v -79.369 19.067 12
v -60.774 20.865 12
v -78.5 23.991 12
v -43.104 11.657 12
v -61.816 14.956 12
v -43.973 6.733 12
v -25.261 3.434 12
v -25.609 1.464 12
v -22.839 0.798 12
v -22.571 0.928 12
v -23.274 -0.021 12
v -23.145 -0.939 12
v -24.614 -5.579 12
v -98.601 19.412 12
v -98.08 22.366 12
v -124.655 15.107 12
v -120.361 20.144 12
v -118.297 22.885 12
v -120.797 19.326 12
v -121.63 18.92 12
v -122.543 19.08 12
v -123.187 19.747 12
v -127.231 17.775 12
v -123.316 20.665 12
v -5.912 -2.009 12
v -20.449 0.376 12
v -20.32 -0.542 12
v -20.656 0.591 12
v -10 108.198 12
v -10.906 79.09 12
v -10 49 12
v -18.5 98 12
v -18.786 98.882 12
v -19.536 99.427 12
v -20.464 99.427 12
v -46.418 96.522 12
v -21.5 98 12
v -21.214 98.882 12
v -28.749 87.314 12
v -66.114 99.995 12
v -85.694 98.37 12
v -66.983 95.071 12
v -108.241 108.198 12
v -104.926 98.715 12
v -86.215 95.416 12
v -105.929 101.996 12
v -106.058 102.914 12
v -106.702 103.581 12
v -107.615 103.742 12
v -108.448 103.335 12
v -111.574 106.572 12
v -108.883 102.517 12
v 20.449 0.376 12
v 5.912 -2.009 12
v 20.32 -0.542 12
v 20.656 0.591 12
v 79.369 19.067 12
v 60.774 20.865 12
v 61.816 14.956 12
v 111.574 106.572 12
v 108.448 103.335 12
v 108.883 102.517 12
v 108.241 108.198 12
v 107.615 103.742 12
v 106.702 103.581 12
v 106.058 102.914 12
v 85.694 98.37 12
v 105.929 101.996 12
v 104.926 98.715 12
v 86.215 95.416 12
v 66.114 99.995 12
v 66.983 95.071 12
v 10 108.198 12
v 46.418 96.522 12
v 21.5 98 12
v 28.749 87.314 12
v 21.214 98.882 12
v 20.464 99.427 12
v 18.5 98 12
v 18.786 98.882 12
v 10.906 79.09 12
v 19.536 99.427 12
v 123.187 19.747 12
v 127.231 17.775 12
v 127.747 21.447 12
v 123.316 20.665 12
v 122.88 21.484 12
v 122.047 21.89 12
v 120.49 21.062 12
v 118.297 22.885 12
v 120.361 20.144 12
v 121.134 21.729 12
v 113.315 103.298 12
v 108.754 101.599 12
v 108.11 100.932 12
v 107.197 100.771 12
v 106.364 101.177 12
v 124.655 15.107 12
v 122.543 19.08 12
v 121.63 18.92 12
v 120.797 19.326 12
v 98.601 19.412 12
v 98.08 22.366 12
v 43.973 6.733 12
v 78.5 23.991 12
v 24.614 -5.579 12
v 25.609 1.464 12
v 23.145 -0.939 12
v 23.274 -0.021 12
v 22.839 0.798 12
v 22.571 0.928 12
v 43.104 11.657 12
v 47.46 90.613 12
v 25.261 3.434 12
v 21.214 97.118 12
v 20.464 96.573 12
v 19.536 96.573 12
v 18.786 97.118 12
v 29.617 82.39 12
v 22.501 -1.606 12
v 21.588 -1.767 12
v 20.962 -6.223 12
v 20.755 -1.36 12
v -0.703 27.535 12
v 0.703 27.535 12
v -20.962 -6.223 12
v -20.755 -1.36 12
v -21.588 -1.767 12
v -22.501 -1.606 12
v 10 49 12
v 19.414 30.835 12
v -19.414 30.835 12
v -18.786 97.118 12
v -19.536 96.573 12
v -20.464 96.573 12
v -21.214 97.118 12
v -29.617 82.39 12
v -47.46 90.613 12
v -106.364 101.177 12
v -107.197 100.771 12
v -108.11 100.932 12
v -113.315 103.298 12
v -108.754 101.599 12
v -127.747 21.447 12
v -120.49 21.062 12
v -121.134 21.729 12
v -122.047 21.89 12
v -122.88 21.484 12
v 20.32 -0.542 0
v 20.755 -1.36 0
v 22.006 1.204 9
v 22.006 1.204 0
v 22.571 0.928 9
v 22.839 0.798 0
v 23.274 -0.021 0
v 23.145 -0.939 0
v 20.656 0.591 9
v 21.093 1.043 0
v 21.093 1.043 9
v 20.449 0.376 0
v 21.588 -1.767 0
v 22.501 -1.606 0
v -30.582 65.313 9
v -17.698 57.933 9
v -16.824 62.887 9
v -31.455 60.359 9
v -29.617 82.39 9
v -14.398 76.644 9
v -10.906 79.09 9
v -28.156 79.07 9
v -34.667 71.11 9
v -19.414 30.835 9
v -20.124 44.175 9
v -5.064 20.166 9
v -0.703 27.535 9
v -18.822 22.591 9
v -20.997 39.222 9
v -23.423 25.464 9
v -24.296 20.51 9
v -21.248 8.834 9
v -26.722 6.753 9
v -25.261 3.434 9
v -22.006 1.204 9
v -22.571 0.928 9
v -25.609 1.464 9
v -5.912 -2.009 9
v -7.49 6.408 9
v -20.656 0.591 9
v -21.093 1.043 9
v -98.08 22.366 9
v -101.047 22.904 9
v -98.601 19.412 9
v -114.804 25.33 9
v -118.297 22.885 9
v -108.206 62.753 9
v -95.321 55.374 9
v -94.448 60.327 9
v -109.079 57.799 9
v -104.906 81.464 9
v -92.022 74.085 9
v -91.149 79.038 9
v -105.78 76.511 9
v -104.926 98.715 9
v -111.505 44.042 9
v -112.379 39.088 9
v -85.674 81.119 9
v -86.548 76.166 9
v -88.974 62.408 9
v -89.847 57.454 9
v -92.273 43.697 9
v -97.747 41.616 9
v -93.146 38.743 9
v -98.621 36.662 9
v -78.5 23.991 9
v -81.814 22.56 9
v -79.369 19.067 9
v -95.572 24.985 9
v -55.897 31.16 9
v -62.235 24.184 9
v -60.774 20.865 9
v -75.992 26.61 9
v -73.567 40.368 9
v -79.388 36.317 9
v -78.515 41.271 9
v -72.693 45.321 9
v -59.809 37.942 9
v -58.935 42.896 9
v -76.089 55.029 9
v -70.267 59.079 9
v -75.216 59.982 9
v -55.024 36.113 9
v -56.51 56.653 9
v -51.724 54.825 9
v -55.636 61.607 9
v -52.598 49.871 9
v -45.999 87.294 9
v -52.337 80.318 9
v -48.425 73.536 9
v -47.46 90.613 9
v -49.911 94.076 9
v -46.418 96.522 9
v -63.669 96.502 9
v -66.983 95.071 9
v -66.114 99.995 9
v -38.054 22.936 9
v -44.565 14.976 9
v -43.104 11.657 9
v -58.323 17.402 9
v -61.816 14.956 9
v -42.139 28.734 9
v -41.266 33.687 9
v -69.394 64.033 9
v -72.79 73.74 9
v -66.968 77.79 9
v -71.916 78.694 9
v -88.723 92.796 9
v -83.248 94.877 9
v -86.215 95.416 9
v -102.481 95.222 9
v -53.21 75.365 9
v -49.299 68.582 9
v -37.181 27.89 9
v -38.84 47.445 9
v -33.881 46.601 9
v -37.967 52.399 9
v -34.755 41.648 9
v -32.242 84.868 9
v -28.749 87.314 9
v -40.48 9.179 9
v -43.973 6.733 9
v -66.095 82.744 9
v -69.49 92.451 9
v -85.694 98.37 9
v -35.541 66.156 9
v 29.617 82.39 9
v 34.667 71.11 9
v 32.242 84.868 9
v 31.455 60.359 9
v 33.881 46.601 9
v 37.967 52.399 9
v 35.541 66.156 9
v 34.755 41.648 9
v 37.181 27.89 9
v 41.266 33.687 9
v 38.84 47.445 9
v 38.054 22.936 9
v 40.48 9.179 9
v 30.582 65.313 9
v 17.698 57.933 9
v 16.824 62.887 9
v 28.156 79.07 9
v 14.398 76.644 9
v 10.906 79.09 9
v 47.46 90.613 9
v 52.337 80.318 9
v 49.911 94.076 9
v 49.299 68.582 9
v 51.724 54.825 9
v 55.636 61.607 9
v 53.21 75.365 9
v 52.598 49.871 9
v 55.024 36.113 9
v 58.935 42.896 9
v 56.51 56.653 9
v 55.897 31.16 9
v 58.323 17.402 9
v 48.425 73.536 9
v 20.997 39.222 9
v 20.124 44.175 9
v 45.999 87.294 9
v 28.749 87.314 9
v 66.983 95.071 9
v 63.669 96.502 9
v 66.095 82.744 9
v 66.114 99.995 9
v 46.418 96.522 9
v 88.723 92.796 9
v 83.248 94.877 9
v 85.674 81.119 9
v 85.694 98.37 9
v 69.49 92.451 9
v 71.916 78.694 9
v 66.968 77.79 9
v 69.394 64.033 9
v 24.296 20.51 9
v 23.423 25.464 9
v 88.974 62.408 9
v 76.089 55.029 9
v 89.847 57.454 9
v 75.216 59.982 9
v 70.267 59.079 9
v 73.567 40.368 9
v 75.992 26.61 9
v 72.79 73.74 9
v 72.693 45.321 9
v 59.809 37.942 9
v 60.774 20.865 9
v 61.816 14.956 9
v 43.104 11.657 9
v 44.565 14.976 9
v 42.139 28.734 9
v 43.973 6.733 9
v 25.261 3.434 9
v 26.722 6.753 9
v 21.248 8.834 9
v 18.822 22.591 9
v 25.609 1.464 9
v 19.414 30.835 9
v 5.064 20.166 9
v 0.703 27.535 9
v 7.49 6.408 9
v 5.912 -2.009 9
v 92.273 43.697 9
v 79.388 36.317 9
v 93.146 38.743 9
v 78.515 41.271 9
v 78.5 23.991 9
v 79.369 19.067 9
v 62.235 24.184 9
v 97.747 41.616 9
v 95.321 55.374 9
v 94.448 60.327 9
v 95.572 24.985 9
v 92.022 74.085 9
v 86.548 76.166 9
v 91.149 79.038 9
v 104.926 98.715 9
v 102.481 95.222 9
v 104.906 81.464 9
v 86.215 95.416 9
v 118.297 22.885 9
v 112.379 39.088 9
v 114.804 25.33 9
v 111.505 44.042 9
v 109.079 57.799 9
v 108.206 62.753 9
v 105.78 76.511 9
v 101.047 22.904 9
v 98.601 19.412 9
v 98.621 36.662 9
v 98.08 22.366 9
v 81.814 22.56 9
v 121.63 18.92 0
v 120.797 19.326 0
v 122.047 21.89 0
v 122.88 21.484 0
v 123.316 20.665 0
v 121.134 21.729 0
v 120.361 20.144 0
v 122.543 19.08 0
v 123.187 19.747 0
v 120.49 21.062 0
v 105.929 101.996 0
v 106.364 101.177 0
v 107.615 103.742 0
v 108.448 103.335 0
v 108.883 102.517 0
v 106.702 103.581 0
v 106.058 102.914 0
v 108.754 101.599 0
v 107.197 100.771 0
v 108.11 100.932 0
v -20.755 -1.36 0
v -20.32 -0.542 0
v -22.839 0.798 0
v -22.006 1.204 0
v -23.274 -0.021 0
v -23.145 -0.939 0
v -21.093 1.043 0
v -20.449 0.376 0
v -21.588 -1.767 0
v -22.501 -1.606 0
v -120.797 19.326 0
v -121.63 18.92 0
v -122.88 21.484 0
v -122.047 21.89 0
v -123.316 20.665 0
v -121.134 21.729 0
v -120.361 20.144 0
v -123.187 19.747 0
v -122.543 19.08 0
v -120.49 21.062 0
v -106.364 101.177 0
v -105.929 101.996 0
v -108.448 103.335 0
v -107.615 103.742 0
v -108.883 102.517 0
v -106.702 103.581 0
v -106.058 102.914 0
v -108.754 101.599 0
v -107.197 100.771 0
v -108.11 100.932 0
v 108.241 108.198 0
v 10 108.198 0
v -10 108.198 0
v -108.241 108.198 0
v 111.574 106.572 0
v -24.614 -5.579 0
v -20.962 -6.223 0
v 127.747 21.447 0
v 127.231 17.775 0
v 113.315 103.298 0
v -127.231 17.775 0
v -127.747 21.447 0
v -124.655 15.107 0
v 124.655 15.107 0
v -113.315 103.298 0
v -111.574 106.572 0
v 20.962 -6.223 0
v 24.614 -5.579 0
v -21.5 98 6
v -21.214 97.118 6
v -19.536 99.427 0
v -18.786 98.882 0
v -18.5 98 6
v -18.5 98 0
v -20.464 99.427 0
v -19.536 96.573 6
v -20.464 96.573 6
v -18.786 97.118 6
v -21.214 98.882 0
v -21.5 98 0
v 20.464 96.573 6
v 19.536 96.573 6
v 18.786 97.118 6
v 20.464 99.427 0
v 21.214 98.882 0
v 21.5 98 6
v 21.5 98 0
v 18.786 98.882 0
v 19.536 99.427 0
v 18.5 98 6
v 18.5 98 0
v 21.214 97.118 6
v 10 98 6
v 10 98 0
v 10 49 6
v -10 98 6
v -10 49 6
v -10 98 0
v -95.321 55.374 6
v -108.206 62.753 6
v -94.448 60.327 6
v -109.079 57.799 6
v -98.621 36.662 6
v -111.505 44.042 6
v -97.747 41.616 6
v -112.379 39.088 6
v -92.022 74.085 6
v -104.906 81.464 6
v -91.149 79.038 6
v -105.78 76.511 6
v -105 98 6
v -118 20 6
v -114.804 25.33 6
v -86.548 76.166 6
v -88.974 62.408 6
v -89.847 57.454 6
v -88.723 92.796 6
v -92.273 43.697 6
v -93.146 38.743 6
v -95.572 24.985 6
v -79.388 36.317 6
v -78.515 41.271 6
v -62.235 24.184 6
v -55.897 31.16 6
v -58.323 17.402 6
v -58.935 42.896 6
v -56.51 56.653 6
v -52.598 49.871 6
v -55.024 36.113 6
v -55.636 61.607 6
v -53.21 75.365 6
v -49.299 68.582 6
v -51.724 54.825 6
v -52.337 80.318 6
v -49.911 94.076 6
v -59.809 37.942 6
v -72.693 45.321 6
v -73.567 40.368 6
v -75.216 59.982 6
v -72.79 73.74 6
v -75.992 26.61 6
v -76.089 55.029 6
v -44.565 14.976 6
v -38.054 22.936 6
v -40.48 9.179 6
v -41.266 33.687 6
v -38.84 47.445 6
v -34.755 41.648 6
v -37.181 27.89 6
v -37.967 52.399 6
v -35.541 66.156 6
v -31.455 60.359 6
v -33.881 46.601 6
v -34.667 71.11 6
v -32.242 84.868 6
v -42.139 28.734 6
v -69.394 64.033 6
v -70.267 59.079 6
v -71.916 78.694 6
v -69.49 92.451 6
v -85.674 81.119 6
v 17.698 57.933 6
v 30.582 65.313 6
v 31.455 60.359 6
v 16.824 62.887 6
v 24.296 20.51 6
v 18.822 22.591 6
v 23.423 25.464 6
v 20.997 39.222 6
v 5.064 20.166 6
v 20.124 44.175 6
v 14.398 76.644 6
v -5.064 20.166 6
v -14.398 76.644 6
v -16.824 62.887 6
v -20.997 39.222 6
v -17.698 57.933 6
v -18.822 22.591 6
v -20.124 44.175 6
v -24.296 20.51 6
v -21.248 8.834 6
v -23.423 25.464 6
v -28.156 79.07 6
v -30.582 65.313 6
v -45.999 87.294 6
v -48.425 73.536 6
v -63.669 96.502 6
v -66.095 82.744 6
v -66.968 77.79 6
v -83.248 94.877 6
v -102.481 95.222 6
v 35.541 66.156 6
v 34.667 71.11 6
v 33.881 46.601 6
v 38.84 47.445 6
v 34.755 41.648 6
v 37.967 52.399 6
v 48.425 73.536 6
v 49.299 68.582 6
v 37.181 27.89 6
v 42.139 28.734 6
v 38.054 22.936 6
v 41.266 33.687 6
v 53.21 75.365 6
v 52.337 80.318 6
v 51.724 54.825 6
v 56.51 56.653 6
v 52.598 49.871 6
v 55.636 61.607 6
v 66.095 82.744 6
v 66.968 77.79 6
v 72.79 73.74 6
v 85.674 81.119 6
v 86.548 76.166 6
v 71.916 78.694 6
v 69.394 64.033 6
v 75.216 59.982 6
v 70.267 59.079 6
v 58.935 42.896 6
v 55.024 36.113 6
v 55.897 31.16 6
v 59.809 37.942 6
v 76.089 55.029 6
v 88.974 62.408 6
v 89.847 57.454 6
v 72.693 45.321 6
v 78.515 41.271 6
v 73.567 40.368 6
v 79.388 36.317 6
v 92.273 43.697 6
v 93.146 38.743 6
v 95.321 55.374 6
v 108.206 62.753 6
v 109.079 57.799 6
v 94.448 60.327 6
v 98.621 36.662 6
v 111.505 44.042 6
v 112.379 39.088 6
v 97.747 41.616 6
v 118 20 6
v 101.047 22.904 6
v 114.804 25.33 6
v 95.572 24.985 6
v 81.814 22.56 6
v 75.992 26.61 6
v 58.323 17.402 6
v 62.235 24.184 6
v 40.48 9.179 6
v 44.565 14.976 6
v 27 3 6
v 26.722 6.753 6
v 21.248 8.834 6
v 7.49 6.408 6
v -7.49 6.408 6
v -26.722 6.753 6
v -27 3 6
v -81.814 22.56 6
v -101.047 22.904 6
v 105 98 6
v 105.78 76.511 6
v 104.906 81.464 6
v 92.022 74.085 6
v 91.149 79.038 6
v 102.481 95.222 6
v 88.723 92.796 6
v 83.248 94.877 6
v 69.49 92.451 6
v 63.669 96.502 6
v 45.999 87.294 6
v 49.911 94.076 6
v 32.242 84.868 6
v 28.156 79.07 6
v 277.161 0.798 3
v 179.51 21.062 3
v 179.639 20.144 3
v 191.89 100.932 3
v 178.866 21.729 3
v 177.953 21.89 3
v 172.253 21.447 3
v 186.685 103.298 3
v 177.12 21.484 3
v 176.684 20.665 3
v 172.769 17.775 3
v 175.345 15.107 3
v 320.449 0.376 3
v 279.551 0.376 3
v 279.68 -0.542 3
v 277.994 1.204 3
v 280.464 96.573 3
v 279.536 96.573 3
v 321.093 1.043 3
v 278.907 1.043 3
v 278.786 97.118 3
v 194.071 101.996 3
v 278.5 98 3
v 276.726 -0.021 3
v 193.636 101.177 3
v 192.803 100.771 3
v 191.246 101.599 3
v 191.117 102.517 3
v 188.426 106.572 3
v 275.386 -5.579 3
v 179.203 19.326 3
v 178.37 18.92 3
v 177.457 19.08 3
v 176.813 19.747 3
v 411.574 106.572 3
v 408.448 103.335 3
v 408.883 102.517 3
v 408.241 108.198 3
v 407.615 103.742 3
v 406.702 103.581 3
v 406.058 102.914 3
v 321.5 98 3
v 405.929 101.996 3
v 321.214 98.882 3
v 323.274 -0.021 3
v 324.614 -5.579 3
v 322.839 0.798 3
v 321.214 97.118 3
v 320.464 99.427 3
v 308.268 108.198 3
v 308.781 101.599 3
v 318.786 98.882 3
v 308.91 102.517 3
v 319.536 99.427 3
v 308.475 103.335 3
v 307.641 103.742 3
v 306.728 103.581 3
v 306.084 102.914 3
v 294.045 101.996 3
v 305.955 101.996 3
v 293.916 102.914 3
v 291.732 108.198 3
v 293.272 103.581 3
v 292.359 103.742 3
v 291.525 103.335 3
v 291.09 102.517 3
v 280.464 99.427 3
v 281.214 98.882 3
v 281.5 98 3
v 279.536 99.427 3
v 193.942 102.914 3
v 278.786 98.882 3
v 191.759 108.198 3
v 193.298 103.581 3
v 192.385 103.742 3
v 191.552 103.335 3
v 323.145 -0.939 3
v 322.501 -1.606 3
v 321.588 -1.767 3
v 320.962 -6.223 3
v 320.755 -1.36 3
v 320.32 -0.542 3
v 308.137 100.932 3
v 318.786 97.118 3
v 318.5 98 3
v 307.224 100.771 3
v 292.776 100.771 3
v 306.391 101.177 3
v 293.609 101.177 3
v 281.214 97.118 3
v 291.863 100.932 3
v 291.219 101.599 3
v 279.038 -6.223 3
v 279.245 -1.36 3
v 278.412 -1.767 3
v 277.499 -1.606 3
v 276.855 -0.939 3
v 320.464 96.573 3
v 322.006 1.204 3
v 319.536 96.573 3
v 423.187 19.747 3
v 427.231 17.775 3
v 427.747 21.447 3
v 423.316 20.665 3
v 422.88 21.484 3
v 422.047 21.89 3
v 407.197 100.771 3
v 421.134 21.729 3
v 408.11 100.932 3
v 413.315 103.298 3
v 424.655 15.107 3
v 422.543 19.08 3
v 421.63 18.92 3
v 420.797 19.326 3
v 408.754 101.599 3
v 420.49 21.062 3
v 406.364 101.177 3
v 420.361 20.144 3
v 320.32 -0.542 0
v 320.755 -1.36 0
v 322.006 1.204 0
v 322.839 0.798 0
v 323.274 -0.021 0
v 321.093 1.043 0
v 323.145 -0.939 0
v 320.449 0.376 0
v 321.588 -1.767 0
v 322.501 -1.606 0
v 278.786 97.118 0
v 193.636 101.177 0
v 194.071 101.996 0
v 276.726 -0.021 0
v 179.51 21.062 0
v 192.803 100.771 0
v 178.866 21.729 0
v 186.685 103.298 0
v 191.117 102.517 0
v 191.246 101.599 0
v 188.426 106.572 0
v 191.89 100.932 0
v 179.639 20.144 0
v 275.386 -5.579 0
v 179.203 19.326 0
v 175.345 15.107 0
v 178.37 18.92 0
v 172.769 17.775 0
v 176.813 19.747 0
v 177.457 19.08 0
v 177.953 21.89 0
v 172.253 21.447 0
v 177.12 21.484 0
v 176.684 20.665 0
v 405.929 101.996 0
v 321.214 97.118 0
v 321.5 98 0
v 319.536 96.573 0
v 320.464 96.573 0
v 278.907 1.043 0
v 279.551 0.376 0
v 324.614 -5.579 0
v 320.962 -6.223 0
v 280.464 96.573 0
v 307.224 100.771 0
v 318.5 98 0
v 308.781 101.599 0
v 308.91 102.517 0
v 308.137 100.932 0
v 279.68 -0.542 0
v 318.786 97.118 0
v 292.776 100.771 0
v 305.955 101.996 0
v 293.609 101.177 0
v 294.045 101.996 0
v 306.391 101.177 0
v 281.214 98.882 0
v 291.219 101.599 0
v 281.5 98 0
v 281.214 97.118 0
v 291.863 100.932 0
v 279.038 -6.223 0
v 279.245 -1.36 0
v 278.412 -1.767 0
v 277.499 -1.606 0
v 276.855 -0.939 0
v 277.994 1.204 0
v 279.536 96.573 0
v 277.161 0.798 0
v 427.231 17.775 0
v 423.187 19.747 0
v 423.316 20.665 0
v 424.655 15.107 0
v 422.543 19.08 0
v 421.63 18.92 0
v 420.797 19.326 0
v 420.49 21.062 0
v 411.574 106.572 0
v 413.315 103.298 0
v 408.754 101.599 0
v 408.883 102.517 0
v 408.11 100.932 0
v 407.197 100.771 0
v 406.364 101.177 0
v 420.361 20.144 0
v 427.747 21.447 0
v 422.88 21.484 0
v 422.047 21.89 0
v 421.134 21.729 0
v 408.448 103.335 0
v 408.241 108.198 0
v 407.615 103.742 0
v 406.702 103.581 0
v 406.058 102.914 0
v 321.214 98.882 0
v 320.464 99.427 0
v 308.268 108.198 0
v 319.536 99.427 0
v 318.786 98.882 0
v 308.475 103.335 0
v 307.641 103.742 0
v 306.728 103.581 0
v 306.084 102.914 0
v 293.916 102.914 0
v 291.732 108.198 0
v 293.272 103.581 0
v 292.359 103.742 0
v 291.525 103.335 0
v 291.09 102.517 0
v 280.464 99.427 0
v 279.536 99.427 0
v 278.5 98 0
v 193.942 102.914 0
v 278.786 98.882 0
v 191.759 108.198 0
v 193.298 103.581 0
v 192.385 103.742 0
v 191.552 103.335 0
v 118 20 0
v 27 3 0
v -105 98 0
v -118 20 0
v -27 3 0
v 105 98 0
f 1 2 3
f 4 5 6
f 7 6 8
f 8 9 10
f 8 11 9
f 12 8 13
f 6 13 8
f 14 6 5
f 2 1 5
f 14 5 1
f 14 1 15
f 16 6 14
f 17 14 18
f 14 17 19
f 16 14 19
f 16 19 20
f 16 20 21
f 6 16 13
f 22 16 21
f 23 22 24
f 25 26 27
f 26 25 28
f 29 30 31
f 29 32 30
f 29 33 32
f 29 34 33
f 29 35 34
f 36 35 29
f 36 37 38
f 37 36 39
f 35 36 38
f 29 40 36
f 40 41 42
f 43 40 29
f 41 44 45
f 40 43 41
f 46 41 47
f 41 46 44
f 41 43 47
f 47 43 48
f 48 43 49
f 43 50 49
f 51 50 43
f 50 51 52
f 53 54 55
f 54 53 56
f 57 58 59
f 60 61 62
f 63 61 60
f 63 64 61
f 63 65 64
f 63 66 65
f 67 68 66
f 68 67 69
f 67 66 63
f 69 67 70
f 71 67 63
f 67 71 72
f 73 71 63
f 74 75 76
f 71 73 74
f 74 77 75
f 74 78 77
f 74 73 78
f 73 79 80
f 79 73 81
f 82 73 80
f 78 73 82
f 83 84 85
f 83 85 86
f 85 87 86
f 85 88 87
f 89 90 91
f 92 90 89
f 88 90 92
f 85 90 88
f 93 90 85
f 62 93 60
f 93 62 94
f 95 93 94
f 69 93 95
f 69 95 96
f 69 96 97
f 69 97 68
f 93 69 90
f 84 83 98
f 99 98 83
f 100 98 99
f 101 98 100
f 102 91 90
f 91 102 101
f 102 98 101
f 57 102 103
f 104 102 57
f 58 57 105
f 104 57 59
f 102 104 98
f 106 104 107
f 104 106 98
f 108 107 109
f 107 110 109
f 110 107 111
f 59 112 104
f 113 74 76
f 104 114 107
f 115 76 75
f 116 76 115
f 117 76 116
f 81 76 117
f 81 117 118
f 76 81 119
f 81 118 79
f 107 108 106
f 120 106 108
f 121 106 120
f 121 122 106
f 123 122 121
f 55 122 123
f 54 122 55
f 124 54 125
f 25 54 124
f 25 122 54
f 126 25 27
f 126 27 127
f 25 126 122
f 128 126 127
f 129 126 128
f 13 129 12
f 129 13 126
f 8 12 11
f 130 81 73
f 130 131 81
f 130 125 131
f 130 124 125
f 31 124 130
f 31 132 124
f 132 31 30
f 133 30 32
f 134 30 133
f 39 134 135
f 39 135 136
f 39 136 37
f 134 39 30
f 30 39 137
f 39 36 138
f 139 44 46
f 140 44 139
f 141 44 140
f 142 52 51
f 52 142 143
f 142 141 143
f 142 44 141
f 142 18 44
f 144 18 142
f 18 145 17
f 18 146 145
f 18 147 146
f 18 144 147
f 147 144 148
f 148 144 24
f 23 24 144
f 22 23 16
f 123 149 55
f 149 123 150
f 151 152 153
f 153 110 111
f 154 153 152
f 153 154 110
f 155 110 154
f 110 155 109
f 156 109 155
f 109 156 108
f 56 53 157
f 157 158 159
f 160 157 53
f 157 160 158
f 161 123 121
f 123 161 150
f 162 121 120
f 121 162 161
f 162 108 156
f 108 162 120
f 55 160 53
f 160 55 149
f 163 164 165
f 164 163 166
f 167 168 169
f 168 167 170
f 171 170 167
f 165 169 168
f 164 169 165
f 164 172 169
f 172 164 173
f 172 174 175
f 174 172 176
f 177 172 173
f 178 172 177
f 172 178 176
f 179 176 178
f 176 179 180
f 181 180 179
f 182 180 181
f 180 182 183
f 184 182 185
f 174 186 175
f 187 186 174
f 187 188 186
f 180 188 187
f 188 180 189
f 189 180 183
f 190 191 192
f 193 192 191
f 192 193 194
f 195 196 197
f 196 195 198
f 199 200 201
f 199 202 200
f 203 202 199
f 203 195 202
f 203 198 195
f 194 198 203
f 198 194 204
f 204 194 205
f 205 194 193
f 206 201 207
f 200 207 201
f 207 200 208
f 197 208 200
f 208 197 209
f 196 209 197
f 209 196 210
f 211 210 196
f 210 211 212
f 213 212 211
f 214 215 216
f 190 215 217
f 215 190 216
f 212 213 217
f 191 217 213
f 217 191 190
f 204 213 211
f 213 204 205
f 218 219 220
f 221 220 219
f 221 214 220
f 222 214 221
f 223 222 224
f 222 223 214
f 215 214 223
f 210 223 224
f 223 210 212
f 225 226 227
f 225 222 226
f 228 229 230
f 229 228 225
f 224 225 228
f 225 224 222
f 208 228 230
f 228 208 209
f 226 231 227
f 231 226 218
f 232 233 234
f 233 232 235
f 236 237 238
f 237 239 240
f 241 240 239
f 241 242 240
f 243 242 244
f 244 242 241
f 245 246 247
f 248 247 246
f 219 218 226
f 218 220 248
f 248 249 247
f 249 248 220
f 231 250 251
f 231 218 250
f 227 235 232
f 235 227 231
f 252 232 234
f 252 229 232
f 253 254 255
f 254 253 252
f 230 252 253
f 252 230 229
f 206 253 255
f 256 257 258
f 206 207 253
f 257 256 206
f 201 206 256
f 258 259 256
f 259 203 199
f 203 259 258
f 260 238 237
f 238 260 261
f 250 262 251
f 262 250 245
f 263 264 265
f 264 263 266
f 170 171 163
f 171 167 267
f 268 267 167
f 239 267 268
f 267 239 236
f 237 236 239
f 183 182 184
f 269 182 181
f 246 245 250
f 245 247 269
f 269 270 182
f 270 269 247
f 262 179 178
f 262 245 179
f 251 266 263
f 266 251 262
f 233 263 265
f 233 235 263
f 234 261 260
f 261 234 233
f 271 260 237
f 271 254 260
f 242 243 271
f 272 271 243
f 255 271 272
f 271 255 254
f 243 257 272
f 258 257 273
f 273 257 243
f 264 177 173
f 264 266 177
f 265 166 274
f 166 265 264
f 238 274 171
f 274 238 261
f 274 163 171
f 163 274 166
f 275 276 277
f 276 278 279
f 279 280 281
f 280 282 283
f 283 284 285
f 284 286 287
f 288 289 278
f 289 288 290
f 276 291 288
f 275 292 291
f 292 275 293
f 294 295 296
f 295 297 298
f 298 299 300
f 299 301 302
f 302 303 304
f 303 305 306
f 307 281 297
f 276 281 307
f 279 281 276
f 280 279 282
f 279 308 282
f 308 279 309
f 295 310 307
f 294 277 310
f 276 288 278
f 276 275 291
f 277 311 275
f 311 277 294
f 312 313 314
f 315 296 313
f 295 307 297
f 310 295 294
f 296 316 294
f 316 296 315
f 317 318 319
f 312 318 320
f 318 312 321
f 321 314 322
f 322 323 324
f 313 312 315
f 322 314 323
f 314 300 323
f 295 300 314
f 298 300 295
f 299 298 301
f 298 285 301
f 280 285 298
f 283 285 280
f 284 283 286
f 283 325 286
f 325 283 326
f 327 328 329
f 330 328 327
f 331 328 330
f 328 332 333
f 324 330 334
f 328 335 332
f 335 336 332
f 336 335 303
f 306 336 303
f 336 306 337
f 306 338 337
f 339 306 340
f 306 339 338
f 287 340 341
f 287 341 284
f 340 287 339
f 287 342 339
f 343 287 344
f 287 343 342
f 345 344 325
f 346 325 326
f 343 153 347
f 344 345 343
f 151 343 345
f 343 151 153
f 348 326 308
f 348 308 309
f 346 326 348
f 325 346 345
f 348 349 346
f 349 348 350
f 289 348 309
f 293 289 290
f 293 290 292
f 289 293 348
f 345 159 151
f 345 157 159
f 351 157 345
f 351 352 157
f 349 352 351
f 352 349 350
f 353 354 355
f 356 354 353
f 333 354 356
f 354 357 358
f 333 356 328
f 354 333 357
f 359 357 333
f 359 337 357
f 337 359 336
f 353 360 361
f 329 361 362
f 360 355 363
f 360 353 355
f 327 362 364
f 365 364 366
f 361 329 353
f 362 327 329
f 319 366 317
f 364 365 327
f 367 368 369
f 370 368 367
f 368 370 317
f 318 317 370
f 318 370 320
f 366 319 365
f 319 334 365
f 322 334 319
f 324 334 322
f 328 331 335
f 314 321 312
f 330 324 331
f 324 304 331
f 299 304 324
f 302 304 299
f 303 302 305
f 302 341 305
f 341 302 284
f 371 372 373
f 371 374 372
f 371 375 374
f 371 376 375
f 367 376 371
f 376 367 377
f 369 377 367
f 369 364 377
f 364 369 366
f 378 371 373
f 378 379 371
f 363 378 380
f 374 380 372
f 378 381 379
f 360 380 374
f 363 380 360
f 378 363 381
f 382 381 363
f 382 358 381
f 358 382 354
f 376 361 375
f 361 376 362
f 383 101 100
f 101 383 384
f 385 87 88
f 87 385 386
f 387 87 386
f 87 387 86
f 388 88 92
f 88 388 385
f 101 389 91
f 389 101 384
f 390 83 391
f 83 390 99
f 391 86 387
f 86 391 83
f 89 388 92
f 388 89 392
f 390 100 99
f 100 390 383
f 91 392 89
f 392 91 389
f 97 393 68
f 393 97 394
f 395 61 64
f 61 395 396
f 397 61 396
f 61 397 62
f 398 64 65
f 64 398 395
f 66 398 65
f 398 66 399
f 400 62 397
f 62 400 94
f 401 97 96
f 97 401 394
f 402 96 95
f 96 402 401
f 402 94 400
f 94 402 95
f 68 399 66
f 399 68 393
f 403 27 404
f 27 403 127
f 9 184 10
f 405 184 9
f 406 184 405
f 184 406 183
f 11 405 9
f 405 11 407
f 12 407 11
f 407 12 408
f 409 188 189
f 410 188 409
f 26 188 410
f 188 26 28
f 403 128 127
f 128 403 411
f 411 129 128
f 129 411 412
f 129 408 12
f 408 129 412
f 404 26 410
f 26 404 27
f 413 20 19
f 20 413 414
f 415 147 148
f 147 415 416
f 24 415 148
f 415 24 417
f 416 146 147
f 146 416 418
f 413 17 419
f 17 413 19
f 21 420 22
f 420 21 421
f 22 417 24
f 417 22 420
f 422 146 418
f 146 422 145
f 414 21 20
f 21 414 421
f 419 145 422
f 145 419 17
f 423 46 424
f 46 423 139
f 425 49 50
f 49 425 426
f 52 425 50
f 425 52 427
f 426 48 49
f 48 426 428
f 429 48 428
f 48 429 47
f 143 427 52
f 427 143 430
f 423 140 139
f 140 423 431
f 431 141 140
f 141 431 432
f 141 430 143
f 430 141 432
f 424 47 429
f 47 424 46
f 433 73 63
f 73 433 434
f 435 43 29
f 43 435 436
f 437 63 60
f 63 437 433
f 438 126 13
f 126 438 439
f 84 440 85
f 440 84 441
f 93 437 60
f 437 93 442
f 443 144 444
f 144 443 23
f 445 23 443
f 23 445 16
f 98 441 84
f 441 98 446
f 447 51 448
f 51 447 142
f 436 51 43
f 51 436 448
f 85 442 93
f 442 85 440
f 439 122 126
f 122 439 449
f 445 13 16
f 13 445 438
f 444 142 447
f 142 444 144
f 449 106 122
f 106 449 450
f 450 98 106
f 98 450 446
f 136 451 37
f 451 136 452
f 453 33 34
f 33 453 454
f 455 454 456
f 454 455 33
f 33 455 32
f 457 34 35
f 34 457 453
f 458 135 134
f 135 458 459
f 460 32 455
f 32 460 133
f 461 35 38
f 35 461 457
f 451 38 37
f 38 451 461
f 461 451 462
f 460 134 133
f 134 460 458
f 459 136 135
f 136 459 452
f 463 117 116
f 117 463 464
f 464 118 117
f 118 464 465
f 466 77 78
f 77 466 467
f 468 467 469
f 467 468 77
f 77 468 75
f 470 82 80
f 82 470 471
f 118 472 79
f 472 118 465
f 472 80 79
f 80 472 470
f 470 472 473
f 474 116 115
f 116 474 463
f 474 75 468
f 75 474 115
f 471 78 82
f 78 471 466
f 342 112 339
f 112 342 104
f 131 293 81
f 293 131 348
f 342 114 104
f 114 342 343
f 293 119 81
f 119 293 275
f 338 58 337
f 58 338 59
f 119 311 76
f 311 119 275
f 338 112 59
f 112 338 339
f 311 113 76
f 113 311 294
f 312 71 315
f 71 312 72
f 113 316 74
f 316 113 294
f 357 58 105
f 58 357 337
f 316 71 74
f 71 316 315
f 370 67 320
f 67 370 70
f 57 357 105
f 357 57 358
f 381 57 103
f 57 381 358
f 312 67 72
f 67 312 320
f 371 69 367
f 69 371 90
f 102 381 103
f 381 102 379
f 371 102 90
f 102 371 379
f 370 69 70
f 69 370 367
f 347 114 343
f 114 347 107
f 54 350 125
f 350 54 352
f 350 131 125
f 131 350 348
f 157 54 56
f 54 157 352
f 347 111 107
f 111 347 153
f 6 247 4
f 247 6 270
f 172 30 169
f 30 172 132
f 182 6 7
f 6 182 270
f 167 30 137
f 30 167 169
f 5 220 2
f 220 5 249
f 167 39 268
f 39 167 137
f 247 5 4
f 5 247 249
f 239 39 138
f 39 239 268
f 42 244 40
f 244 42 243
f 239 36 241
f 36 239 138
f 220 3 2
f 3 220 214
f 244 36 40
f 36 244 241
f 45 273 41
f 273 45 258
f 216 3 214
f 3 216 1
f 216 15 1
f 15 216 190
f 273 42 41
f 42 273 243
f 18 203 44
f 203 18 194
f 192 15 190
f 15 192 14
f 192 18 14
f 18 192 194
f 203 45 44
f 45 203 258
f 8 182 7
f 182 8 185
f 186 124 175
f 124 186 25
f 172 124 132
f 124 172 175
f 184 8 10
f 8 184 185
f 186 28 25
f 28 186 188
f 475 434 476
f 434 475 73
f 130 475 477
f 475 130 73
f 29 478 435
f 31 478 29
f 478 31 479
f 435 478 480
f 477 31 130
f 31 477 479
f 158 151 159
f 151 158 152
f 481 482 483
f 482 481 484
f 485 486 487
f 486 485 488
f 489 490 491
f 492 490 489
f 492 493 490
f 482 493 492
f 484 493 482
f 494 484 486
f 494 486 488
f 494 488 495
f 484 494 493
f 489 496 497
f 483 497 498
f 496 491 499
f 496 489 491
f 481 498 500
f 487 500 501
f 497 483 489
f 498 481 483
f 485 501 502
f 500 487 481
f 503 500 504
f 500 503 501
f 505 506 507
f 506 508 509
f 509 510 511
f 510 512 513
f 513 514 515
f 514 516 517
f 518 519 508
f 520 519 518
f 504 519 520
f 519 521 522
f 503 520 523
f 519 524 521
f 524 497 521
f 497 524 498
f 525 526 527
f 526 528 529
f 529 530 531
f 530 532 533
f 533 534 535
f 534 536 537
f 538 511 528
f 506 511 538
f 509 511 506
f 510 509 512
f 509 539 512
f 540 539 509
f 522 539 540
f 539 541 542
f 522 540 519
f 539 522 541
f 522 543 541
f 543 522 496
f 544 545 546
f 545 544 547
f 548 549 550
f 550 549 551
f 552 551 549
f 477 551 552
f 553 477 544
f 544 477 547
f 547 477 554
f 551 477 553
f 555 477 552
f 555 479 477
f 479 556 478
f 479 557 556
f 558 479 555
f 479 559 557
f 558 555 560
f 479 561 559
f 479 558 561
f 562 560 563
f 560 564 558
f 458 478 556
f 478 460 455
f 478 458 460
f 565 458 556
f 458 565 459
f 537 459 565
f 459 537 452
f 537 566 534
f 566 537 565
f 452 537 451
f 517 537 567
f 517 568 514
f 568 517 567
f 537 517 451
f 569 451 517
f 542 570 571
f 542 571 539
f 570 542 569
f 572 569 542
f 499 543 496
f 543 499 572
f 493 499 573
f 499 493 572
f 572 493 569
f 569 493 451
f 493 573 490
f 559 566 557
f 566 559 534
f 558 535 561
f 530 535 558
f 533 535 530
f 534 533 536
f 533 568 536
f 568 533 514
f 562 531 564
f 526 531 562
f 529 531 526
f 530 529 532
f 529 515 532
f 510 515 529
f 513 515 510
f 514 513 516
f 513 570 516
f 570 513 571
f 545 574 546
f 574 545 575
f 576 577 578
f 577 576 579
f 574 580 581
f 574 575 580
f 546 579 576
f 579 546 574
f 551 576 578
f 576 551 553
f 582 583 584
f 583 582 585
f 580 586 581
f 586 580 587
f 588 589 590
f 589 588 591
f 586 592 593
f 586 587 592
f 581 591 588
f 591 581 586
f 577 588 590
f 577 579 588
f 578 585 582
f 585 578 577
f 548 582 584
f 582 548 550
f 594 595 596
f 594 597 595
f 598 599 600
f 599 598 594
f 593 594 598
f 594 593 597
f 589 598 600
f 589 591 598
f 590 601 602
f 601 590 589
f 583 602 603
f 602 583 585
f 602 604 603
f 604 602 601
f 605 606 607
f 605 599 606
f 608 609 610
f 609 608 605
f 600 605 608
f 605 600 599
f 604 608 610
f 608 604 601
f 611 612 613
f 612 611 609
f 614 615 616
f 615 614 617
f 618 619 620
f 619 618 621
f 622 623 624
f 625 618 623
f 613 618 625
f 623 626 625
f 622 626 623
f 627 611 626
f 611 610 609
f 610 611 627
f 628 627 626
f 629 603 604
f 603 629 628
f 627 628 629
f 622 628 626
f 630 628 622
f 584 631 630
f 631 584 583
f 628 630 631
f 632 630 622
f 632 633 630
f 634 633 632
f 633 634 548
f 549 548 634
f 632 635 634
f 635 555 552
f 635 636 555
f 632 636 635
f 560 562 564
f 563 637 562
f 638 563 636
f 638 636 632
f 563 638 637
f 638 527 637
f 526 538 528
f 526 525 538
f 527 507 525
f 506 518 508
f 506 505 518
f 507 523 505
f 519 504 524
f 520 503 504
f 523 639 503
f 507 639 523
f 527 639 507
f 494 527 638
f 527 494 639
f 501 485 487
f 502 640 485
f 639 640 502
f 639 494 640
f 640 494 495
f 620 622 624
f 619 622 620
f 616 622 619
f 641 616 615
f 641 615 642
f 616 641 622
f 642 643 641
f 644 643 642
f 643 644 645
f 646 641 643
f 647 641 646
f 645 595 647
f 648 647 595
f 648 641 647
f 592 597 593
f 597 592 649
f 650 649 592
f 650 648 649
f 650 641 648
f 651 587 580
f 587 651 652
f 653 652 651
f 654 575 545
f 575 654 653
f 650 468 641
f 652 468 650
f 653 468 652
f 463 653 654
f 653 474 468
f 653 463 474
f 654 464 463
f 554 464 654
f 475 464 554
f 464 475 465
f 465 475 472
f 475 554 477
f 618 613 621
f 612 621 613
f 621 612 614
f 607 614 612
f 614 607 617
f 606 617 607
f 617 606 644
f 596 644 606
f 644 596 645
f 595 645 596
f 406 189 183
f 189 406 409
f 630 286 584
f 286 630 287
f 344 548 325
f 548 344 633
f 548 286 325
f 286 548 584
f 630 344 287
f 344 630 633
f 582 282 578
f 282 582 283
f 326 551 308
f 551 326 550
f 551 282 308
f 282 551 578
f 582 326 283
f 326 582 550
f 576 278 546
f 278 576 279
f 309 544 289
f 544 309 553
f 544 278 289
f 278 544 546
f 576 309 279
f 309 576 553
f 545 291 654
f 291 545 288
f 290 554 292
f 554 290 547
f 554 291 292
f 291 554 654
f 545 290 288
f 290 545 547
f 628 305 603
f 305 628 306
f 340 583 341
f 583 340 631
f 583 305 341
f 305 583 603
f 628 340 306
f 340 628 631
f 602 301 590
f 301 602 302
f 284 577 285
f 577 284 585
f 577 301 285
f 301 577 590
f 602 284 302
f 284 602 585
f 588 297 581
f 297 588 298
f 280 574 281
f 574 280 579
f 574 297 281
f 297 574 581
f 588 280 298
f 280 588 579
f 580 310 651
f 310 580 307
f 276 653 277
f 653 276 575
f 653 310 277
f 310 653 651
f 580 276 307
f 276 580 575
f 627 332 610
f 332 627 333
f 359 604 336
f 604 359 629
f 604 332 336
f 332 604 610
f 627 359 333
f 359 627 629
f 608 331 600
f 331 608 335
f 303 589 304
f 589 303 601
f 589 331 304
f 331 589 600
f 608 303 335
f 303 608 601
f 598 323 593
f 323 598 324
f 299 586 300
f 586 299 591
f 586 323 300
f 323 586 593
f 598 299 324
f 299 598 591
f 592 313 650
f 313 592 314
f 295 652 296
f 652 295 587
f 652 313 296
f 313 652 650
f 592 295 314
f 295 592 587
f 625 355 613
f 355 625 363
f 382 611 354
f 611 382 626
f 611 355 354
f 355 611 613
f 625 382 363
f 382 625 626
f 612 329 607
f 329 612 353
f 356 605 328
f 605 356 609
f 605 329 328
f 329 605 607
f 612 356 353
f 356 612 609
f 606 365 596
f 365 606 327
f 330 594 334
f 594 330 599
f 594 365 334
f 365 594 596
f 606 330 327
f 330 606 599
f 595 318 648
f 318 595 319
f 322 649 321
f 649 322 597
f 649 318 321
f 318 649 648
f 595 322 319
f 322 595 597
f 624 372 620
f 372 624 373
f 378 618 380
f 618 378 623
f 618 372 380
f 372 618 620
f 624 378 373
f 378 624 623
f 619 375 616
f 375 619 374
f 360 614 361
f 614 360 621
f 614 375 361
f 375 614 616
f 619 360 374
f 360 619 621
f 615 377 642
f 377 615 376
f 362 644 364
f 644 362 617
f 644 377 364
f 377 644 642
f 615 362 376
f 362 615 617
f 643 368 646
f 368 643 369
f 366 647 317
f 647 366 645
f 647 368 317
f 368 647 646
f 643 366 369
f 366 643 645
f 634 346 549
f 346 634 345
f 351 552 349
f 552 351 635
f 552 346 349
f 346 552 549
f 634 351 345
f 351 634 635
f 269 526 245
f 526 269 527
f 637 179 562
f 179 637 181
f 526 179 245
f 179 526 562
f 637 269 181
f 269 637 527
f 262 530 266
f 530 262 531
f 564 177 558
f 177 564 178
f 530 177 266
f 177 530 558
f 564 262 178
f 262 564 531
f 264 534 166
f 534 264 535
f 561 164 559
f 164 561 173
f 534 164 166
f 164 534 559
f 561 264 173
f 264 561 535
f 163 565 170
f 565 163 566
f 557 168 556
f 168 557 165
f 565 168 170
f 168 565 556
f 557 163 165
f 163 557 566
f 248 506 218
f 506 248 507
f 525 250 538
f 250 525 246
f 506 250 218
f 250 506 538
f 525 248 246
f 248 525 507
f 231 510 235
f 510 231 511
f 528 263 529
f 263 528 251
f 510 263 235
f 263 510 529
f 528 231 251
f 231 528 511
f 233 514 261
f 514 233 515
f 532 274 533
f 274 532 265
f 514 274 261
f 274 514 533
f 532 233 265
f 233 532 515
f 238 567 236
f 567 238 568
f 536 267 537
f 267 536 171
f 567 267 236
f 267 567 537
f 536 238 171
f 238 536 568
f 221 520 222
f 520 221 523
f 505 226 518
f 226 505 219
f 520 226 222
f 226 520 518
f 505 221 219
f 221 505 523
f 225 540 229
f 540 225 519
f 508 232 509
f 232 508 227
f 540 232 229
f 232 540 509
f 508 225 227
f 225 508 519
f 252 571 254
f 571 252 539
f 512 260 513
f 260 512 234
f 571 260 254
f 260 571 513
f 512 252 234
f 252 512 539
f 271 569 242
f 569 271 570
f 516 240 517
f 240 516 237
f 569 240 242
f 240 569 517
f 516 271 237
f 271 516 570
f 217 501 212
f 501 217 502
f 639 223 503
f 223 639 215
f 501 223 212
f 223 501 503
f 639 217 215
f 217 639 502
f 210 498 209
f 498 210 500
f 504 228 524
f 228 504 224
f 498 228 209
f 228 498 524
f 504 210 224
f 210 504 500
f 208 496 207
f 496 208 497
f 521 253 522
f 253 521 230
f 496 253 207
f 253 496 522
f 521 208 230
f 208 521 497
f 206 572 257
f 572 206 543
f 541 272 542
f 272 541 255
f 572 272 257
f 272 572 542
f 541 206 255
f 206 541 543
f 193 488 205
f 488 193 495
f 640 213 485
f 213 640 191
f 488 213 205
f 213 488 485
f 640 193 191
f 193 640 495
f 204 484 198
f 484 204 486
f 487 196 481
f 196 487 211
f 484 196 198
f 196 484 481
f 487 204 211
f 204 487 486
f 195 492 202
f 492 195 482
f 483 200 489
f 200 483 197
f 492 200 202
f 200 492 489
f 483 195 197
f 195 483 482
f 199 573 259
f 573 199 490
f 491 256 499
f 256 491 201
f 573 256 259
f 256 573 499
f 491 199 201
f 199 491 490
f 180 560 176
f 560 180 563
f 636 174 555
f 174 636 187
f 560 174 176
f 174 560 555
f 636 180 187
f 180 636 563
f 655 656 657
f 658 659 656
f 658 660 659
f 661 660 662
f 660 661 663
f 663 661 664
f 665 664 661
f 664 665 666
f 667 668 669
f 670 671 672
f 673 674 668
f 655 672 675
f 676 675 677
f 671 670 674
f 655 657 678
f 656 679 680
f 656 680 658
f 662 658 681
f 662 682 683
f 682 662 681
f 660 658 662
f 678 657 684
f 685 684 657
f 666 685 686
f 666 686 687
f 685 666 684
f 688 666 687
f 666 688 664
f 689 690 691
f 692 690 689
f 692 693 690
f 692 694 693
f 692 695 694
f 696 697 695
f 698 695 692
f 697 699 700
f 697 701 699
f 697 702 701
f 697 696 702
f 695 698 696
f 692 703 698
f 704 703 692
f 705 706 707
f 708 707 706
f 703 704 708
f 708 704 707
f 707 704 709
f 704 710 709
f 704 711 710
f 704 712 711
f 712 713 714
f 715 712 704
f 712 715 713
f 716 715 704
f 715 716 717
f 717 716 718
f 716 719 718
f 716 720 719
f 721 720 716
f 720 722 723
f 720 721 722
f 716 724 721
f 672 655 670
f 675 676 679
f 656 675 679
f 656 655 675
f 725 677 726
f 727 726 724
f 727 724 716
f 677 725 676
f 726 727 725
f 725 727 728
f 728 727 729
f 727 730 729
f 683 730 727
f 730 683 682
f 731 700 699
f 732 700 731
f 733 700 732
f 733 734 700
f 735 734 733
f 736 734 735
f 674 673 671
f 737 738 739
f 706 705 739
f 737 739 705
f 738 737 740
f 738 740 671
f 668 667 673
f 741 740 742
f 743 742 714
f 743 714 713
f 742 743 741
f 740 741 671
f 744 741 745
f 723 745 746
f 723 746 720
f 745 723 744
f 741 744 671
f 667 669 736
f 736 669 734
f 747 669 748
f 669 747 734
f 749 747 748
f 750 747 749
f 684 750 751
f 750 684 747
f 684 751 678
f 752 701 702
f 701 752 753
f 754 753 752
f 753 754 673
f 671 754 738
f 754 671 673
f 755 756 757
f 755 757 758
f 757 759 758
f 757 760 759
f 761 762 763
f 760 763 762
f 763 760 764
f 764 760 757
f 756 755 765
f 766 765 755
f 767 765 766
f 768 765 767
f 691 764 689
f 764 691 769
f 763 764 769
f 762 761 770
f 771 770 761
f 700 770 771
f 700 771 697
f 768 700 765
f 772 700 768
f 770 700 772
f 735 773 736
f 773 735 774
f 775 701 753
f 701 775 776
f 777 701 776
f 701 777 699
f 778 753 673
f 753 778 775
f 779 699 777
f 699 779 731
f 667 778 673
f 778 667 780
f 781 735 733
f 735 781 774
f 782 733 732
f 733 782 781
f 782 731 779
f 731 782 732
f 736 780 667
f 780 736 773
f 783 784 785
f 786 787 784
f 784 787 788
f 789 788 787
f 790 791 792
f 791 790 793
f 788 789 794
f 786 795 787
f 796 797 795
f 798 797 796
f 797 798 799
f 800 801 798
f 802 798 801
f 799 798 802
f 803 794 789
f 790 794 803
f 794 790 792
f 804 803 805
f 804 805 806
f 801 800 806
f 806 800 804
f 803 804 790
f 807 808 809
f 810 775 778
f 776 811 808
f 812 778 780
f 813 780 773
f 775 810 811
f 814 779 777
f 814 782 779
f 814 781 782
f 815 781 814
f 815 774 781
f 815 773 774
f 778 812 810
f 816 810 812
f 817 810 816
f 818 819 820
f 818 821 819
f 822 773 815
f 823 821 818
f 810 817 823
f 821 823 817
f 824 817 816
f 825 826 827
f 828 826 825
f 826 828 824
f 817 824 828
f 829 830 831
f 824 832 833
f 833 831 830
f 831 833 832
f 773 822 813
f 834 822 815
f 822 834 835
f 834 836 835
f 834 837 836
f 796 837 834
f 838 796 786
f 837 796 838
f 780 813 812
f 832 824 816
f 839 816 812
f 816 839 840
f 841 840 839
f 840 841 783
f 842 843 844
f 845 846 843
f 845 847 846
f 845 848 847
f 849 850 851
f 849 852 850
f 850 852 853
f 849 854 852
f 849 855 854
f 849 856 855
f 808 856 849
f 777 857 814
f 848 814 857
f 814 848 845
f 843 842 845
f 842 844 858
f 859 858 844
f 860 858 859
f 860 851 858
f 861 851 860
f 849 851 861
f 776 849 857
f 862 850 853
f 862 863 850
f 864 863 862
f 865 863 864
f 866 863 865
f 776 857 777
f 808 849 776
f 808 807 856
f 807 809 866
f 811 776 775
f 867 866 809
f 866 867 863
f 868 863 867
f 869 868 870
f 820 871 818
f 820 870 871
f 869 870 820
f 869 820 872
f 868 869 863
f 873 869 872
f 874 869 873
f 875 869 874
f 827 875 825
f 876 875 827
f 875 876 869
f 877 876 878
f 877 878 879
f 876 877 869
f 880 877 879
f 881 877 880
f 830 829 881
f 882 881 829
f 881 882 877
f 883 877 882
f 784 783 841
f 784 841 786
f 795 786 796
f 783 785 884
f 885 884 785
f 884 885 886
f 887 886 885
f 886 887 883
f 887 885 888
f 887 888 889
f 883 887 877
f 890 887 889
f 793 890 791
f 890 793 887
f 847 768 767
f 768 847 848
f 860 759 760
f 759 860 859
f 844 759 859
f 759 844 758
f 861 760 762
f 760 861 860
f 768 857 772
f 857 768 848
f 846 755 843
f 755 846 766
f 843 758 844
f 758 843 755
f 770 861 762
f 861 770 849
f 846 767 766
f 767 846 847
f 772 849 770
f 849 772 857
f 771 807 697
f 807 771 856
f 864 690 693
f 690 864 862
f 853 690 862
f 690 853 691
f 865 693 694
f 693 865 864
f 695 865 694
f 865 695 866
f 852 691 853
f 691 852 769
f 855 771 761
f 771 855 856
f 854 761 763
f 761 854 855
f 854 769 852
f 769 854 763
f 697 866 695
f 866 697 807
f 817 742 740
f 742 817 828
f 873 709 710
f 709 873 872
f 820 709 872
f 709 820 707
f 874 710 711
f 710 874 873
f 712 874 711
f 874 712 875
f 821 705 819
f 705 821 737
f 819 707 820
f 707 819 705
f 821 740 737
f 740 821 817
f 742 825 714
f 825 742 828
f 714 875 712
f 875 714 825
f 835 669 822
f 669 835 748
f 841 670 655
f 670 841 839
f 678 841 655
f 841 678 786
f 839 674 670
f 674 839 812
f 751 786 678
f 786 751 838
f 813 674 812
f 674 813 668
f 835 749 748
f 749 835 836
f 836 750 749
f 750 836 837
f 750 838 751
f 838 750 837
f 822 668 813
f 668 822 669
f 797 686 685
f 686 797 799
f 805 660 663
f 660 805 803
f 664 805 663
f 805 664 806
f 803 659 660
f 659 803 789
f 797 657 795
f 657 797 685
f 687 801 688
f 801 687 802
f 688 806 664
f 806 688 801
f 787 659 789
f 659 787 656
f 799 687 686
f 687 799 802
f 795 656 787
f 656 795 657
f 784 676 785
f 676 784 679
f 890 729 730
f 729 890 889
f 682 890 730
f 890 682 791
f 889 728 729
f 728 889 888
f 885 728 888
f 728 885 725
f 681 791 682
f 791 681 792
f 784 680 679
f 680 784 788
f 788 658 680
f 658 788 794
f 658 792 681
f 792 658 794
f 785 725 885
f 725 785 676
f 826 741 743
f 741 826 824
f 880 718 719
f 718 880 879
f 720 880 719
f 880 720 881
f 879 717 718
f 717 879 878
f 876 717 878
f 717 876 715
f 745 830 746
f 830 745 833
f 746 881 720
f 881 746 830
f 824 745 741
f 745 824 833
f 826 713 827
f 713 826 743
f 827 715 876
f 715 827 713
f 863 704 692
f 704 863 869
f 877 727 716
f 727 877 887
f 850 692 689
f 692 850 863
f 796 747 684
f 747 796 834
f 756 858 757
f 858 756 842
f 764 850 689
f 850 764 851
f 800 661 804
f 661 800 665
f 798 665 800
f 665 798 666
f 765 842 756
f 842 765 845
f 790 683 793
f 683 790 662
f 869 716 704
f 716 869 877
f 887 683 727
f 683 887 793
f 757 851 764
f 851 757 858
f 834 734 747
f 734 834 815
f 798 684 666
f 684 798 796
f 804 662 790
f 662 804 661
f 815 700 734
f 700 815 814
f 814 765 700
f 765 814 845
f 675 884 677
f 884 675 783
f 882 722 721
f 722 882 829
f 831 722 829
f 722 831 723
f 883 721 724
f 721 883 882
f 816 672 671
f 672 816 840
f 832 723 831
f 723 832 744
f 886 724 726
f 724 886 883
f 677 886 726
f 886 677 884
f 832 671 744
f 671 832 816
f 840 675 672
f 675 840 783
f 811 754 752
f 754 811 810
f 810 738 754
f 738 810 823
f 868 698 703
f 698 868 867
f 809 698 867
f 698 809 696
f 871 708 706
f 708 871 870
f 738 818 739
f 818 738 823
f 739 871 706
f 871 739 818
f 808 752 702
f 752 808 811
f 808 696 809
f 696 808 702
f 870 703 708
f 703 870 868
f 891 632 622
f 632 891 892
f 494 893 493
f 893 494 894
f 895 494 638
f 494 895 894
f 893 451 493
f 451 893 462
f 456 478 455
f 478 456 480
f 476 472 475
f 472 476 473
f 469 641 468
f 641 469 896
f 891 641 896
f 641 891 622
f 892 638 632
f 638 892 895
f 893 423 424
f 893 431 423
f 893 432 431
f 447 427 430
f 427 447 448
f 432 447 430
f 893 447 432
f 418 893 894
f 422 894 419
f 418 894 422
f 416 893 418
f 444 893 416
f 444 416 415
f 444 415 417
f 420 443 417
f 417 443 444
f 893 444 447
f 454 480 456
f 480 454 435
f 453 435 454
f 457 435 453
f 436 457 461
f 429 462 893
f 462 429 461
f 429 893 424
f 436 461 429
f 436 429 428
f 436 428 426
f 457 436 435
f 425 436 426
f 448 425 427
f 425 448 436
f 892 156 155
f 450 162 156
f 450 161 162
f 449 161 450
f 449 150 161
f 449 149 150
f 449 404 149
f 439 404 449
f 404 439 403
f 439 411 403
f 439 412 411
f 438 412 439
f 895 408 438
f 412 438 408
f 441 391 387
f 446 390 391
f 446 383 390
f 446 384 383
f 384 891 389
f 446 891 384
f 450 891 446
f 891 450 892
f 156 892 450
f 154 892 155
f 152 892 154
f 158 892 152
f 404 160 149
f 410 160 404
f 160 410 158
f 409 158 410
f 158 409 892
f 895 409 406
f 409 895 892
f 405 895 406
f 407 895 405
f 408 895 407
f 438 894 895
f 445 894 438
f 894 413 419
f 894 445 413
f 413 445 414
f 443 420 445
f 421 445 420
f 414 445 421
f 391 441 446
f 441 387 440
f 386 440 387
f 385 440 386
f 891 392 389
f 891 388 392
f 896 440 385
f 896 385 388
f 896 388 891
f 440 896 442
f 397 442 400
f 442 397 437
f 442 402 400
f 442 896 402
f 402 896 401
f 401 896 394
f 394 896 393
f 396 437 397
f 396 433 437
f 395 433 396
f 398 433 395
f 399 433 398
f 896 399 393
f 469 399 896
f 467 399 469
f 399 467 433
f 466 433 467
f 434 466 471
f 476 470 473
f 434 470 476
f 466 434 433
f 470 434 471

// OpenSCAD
// -*- mode: c -*-
/* All distances are in mm. */

/* set output quality */
$fn = 10;

/* Distance between key centers. */
column_spacing   = 19;
row_spacing      = column_spacing;

/* This number should exceed row_spacing and column_spacing. The
 default gives a 1mm = (20mm - 19mm) gap between keycaps and cuts in
 the top plate.*/
key_hole_size = 20;

/* rotation angle; the angle between the halves is twice this
   number */
angle = 10;

/* The radius of screw holes. Holes will be slightly bigger due
   to the cut width. */
screw_hole_radius = 1.5;
/* Each screw hole is a hole in a "washer". How big these "washers"
   should be depends on the material used: this parameter and the
   `switch_hole_size` determine the spacer wall thickness. */
washer_radius     = 4 * screw_hole_radius;

/* This constant allows tweaking the location of the screw holes near
   the USB cable. Only useful with small `angle` values. Try the value
   of 10 with angle=0. */
back_screw_hole_offset = 0;

/* Distance between halves. */
hand_separation        = 0;

/* The approximate size of switch holes. Used to determine how
   thick walls can be, i.e. how much room around each switch hole to
   leave. See spacer(). */
switch_hole_size = 14;

/* Sets whether the case should use notched holes. As far as I can
   tell these notches are not all that useful... */
use_notched_holes = false;

/* Number of rows and columns in the matrix. You need to update
   staggering_offsets if you change n_cols. */
n_rows = 4;
n_cols = 5;

/* Number of thumb keys (per hand), try 1 or 2. */
n_thumb_keys = 1;

/* The width of the USB cable hole in the spacer. */
cable_hole_width = 12;

/* Vertical column staggering offsets. The first element should
   be zero. */
staggering_offsets = [0, 5, 11, 6, 3];

/* Whether or not to split the spacer into quarters. */
quarter_spacer = false;

/* Where the top/bottom split of a quartered spacer will be. */
spacer_quartering_offset = 60;

module rz(angle, center=undef) {
  /* Rotate children `angle` degrees around `center`. */
  translate(center) {
    rotate(angle) {
      translate(-center) {
        for (i=[0:$children-1])
          children(i);
      }
    }
  }
}

/* Compute coordinates of a point obtained by rotating p angle degrees
   around center. Used to compute locations of screw holes near the
   USB cable hole. */
function rz_fun(p, angle, center) = [cos(angle) * (p[0] - center[0]) - sin(angle) * (p[1] - center[1]) + center[0],
                                     sin(angle) * (p[0] - center[0]) + cos(angle) * (p[1] - center[1])+ center[1]];

module switch_hole(position, notches=use_notched_holes) {
  /* Cherry MX switch hole with the center at `position`. Sizes come
     from the ErgoDox design. */
  hole_size    = 13.97;
  notch_width  = 3.5001;
  notch_offset = 4.2545;
  notch_depth  = 0.8128;
  translate(position) {
    union() {
        translate([0,0,-1])
      cube([hole_size, hole_size,50], center=true);
      if (notches == true) {
        translate([0, notch_offset,-1]) {
          cube([hole_size+2*notch_depth, notch_width,50], center=true);
        }
        translate([0, -notch_offset,-1]) {
          cube([hole_size+2*notch_depth, notch_width,50], center=true);
        }
      }
    }
  }
};

module regular_key(position, size) {
  /* Create a hole for a regular key. */
  translate(position) {
    cube([size, size,50], center=true);
  }
}

module thumb_key(position, size) {
  /* Create a hole for a 1x1.5 unit thumb key. */
  translate(position) {
    scale([1, 1.5]) {
      translate(-position) {
        regular_key(position, size);
      }
    }
  }
}

module column (bottom_position, switch_holes, key_size=key_hole_size) {
  /* Create a column of keys. */
  translate(bottom_position) {
    for (i = [0:(n_rows-1)]) {
      if (switch_holes == true) {
        switch_hole([0, i*column_spacing,-1]);
      } else {
        regular_key([0, i*column_spacing,-1], key_size);
      }
    }
  }
}

module rotate_half() {
  /* Rotate the right half of the keys around the top left corner of
     the thumb key. Assumes that the thumb key is a 1x1.5 key and that
     it is shifted 0.5*column_spacing up relative to the nearest column. */
  rotation_y_offset = 1.75 * column_spacing;
  for (i=[0:$children-1]) {
    rz(angle, [hand_separation, rotation_y_offset]) {
      children(i);
    }
  }
}

module add_hand_separation() {
  /* Shift everything right to get desired hand separation. */
  for (i=[0:$children-1]) {
    translate([0.5*hand_separation + 0.2, /* we get back the full separation
                                       because of mirroring */
               0]) children(i);
  }
}

module right_half (switch_holes=true, key_size=key_hole_size) {
  /* Create switch holes or key holes for the right half of the
     keyboard. Different key_sizes are used in top_plate() and
     spacer(). */
  x_offset = 0.5 * row_spacing;
  y_offset = 0.5 * column_spacing;
  thumb_key_offset = y_offset + 3;
  rotate_half() {
    add_hand_separation() {
      for (j=[0:(n_thumb_keys-1)]) {
        if (switch_holes == true) {
          switch_hole([x_offset + j*row_spacing, thumb_key_offset,-1]);
        } else {
          thumb_key([x_offset + j*row_spacing, thumb_key_offset,-1], key_size);
        }
      }
      for (j=[0:(n_cols-1)]) {
        column([x_offset + (j+n_thumb_keys)*row_spacing, y_offset + staggering_offsets[j]], switch_holes, key_size);
      }
    }
  }
}

module screw_hole(radius, offset_radius, position, direction) {
  /* Create a screw hole of radius `radius` at a location
     `offset_radius` from `position`, (diagonally), in the direction
     `direction`. Oh, what a mess this is. */
  /* direction is the 2-element vector specifying to which side of
     position to move to, [-1, -1] for bottom left, etc. */

  /* radius_offset is the offset in the x (or y) direction so that
     we're offset_radius from position */
  radius_offset = offset_radius / sqrt(2);
  /* key_hole_offset if the difference between key spacing and key
     hole edge */
  key_hole_offset = 0.5*(row_spacing - key_hole_size);
  x = position[0] + (radius_offset - key_hole_offset) * direction[0];
  y = position[1] + (radius_offset - key_hole_offset) * direction[1];
  translate([x,y,0]) {
    cylinder(r1=radius,r2=radius,h=3);
  }
}

module right_screw_holes(hole_radius) {
  /* coordinates of the back right screw hole before rotation... */
  back_right = [(n_cols+n_thumb_keys)*row_spacing,
               staggering_offsets[n_cols-1] + n_rows * column_spacing];
  /* and after */
  tmp = rz_fun(back_right, angle, [0, 2.25*column_spacing]);

  nudge = 0.75;

  rotate_half() {
    add_hand_separation() {
      screw_hole(hole_radius, washer_radius,
                 [row_spacing, 0],
                 [-nudge, -nudge]);
      screw_hole(hole_radius, washer_radius,
                 [(n_cols+n_thumb_keys)*row_spacing, staggering_offsets[n_cols-1]],
                 [nudge, -nudge]);
      screw_hole(hole_radius, washer_radius,
                 back_right,
                 [nudge, nudge]);
    }
  }

  /* add the screw hole near the cable hole */
  translate([washer_radius - tmp[0],
             back_screw_hole_offset]) {
    rotate_half() {
      add_hand_separation() {
        screw_hole(hole_radius,
                   washer_radius,
                   back_right,
                   [nudge, nudge]);
      }
    }
  }
}

module screw_holes(hole_radius) {
  /* Create all the screw holes. */
  right_screw_holes(hole_radius);
  mirror ([1,0,0]) { right_screw_holes(hole_radius); }
}

module left_half(switch_holes=true, key_size=key_hole_size) {
  mirror ([1,0,0]) { right_half(switch_holes, key_size); }
}

module bottom_plate() {
  /* bottom layer of the case */
  difference() {
    hull() { screw_holes(washer_radius); }
    screw_holes(screw_hole_radius);
    translate([-20,98]) {
      cylinder(r=1.5, h=50, center=true);
    }
    translate([20,98]) {
      cylinder(r=1.5, h=50, center=true);
    }
  }
}

module top_plate() {
  /* top layer of the case */
  difference() {
    bottom_plate();
    right_half(false);
    left_half(false);
    translate([-10, 49]) {
      cube([20,60,50], 10);
    }
    translate([-20,98]) {
      cylinder(r=1.5, h=50, center=true);
    }
    translate([20,98]) {
      cylinder(r=1.5, h=50, center=true);
    }
  }
}

module switch_plate() {
  /* the switch plate */
  difference() {
    bottom_plate();
    right_half();
    left_half();
    translate([-10, 49]) {
      cube([20,60,50], 10);
    }
    translate([-20,98]) {
      cylinder(r=1.5, h=50, center=true);
    }
    translate([20,98]) {
      cylinder(r=1.5, h=50, center=true);
    }
  }
}

module spacer() {
  /* Create a spacer. */
  difference() {
    union() {
      difference() {
        bottom_plate();
        hull() {
          right_half(switch_holes=false, key_size=switch_hole_size + 3);
          left_half(switch_holes=false, key_size=switch_hole_size + 3);
        }
        /* add the USB cable hole: */
        translate([-0.5*cable_hole_width, 2*column_spacing,0]) {
          cube([cable_hole_width, (2*n_rows) * column_spacing,50]);
        }
      }
      screw_holes(washer_radius);
    }
    screw_holes(screw_hole_radius);
    translate([-10, 49]) {
      cube([20,60,50], 10);
    }
    translate([-20,98]) {
      cylinder(r=1.5, h=50);
    }
    translate([20,98]) {
      cylinder(r=1.5, h=50);
    }
  }
}

module spacer_quadrant(spacer_quadrant_number) {
  /* Cut a quarter of a spacer. */
  translate([0, spacer_quartering_offset]) {
    intersection() {
      translate([0, -spacer_quartering_offset]) { spacer(); }
      rotate([0, 0, spacer_quadrant_number * 90]) { cube([1000, 1000,3]); }
    }
  }
}

module quartered_spacer()
{
  /* Assemble all four quarters of a spacer. */
  spacer_quadrant(0);
  spacer_quadrant(1);
  translate([-5,-10]) spacer_quadrant(2);
  translate([5,-10]) spacer_quadrant(3);
}

module another_spacer() {
  difference() {
    bottom_plate();
    linear_extrude(height = 5) {
      translate([-134, 116, -1]) {
        polygon(
          points=[
            [29, -18],
            [239, -18],
            [252, -96],
            [161, -113],
            [107, -113],
            [16, -96],
          ]
        );
      }
    }
    linear_extrude(height = 5) {
      translate([-134, 116, -1] ) {
        polygon(
          points=[
            [124, -2],
            [124, -39],
            [144, -39],
            [144, -2],
          ]
        );
      }
    }
  }
}


/* Create all four layers. */
translate([0,0,9]) top_plate();
translate([0, 0, 6]) { switch_plate(); }
translate([300, 0,0]) { bottom_plate(); }
//translate([0,0,3]) spacer();
translate([0,0,3]) another_spacer();
translate([0, 0,0]) {
  if (quarter_spacer == true) {
    quartered_spacer();
  }
  else {
    //spacer();
    another_spacer();
  }
}
